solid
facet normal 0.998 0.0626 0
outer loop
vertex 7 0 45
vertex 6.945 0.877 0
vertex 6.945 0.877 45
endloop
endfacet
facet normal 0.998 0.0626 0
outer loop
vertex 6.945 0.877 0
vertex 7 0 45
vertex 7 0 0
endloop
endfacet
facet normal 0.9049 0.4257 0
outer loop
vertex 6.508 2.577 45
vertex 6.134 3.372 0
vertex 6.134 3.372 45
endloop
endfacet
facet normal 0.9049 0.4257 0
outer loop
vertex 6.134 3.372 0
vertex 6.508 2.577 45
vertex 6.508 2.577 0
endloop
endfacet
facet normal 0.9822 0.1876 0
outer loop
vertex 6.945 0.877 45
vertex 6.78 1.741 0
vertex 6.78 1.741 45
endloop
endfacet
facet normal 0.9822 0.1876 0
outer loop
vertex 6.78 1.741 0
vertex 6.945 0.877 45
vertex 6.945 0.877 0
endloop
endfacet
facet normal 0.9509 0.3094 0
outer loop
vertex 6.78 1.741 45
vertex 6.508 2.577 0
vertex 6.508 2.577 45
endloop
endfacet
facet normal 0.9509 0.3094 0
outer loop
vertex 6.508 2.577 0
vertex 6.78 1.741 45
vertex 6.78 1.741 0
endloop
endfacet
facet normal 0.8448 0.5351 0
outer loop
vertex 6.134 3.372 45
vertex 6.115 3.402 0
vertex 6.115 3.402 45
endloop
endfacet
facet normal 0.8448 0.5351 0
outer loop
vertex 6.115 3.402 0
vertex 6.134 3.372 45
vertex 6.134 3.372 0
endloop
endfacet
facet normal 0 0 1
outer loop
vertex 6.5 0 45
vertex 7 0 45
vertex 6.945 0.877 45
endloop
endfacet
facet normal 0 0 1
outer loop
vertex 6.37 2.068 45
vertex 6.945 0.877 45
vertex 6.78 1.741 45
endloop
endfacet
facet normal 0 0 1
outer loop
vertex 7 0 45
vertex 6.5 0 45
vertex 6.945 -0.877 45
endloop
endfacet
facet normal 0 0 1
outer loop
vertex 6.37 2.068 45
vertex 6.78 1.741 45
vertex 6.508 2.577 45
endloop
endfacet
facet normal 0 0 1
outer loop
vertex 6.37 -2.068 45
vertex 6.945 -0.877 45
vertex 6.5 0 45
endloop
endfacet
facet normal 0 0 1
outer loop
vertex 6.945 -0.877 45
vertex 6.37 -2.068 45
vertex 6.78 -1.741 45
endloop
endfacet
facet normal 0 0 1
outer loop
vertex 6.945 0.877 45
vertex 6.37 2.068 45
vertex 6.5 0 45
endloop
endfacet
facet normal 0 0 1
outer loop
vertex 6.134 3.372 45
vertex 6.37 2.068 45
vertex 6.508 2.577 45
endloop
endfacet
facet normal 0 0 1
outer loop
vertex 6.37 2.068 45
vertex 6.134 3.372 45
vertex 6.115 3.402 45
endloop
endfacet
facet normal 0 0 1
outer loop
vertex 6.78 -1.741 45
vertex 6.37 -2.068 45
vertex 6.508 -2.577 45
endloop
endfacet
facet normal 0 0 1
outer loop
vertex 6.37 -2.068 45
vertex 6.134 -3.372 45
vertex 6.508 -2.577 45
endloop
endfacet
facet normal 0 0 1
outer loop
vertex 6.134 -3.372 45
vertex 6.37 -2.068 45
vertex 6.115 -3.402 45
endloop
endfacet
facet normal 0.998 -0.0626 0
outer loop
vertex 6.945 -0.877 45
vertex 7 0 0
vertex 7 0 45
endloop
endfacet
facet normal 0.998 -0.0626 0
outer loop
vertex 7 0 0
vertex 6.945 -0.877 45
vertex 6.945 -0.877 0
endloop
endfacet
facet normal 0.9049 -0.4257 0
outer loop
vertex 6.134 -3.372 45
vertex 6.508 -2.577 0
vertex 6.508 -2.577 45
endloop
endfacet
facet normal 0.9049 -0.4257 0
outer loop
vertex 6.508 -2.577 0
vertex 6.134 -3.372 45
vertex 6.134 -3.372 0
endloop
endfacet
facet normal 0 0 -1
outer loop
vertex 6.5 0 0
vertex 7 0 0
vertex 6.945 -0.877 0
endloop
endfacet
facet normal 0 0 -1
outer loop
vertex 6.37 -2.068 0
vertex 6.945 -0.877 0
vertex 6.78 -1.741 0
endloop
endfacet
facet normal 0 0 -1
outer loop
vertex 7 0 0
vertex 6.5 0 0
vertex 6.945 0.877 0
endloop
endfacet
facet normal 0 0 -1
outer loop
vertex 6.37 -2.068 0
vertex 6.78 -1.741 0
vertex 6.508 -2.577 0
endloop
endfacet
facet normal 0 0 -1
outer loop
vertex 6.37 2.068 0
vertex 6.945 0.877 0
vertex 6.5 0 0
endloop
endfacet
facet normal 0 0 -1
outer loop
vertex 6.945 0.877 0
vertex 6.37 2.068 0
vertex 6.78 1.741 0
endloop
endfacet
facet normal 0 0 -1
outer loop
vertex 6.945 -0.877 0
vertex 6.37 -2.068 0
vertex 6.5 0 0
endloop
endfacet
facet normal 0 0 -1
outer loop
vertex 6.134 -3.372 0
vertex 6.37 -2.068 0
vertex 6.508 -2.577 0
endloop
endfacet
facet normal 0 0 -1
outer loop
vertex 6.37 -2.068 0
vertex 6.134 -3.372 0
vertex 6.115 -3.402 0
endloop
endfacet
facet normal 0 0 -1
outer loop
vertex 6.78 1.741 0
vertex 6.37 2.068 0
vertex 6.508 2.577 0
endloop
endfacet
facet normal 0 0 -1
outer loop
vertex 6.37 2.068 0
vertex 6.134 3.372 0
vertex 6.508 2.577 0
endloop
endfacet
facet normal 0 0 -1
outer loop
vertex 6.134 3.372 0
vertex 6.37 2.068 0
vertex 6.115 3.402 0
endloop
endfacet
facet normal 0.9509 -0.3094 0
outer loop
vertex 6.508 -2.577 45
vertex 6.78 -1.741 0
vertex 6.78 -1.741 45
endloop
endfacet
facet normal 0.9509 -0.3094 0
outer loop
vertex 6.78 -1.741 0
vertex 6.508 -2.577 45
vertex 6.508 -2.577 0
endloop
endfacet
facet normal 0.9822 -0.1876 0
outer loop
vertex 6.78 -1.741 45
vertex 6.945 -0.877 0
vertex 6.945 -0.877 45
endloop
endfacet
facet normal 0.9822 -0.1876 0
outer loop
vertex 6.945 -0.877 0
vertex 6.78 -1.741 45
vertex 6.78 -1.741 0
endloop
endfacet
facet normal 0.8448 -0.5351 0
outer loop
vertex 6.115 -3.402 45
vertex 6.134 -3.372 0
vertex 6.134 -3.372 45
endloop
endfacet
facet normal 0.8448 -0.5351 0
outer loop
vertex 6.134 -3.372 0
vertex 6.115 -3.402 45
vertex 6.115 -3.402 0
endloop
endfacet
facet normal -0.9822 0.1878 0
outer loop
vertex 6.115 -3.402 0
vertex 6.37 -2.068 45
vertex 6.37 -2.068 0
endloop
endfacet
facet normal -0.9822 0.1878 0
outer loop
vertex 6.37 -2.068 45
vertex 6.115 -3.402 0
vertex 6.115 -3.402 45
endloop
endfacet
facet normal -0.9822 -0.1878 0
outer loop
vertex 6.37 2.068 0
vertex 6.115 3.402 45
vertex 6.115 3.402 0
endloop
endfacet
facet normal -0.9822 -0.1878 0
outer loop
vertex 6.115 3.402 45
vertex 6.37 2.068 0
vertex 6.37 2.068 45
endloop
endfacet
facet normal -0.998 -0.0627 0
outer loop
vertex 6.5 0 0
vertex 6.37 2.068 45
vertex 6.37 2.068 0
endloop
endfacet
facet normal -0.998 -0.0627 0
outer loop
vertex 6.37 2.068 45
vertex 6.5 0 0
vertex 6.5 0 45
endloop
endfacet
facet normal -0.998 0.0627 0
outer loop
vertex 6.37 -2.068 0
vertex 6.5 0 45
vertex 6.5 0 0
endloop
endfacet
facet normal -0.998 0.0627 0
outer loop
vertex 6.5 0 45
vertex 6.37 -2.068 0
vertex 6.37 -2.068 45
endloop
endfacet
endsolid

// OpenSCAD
$fn = 50;


difference() {
	union() {
		cylinder(h = 45, r = 7.0000000000);
		translate(v = [-13.0000000000, 0, 0]) {
			cylinder(h = 45, r = 7.0000000000);
		}
	}
	union() {
		cylinder(h = 45, r = 3.2500000000);
		cylinder(h = 45, r = 1.8000000000);
		cylinder(h = 45, r = 1.8000000000);
		cylinder(h = 45, r = 1.8000000000);
		translate(v = [-17.5000000000, 0, 0]) {
			hull() {
				translate(v = [-3.7500000000, 0.0000000000, 0]) {
					cylinder(h = 45, r = 7.5000000000);
				}
				translate(v = [3.7500000000, 0.0000000000, 0]) {
					cylinder(h = 45, r = 7.5000000000);
				}
				translate(v = [-3.7500000000, -0.0000000000, 0]) {
					cylinder(h = 45, r = 7.5000000000);
				}
				translate(v = [3.7500000000, -0.0000000000, 0]) {
					cylinder(h = 45, r = 7.5000000000);
				}
			}
		}
		translate(v = [-10.0000000000, 0, 0.0000000000]) {
			cylinder(h = 45, r = 16.5000000000);
		}
	}
}
